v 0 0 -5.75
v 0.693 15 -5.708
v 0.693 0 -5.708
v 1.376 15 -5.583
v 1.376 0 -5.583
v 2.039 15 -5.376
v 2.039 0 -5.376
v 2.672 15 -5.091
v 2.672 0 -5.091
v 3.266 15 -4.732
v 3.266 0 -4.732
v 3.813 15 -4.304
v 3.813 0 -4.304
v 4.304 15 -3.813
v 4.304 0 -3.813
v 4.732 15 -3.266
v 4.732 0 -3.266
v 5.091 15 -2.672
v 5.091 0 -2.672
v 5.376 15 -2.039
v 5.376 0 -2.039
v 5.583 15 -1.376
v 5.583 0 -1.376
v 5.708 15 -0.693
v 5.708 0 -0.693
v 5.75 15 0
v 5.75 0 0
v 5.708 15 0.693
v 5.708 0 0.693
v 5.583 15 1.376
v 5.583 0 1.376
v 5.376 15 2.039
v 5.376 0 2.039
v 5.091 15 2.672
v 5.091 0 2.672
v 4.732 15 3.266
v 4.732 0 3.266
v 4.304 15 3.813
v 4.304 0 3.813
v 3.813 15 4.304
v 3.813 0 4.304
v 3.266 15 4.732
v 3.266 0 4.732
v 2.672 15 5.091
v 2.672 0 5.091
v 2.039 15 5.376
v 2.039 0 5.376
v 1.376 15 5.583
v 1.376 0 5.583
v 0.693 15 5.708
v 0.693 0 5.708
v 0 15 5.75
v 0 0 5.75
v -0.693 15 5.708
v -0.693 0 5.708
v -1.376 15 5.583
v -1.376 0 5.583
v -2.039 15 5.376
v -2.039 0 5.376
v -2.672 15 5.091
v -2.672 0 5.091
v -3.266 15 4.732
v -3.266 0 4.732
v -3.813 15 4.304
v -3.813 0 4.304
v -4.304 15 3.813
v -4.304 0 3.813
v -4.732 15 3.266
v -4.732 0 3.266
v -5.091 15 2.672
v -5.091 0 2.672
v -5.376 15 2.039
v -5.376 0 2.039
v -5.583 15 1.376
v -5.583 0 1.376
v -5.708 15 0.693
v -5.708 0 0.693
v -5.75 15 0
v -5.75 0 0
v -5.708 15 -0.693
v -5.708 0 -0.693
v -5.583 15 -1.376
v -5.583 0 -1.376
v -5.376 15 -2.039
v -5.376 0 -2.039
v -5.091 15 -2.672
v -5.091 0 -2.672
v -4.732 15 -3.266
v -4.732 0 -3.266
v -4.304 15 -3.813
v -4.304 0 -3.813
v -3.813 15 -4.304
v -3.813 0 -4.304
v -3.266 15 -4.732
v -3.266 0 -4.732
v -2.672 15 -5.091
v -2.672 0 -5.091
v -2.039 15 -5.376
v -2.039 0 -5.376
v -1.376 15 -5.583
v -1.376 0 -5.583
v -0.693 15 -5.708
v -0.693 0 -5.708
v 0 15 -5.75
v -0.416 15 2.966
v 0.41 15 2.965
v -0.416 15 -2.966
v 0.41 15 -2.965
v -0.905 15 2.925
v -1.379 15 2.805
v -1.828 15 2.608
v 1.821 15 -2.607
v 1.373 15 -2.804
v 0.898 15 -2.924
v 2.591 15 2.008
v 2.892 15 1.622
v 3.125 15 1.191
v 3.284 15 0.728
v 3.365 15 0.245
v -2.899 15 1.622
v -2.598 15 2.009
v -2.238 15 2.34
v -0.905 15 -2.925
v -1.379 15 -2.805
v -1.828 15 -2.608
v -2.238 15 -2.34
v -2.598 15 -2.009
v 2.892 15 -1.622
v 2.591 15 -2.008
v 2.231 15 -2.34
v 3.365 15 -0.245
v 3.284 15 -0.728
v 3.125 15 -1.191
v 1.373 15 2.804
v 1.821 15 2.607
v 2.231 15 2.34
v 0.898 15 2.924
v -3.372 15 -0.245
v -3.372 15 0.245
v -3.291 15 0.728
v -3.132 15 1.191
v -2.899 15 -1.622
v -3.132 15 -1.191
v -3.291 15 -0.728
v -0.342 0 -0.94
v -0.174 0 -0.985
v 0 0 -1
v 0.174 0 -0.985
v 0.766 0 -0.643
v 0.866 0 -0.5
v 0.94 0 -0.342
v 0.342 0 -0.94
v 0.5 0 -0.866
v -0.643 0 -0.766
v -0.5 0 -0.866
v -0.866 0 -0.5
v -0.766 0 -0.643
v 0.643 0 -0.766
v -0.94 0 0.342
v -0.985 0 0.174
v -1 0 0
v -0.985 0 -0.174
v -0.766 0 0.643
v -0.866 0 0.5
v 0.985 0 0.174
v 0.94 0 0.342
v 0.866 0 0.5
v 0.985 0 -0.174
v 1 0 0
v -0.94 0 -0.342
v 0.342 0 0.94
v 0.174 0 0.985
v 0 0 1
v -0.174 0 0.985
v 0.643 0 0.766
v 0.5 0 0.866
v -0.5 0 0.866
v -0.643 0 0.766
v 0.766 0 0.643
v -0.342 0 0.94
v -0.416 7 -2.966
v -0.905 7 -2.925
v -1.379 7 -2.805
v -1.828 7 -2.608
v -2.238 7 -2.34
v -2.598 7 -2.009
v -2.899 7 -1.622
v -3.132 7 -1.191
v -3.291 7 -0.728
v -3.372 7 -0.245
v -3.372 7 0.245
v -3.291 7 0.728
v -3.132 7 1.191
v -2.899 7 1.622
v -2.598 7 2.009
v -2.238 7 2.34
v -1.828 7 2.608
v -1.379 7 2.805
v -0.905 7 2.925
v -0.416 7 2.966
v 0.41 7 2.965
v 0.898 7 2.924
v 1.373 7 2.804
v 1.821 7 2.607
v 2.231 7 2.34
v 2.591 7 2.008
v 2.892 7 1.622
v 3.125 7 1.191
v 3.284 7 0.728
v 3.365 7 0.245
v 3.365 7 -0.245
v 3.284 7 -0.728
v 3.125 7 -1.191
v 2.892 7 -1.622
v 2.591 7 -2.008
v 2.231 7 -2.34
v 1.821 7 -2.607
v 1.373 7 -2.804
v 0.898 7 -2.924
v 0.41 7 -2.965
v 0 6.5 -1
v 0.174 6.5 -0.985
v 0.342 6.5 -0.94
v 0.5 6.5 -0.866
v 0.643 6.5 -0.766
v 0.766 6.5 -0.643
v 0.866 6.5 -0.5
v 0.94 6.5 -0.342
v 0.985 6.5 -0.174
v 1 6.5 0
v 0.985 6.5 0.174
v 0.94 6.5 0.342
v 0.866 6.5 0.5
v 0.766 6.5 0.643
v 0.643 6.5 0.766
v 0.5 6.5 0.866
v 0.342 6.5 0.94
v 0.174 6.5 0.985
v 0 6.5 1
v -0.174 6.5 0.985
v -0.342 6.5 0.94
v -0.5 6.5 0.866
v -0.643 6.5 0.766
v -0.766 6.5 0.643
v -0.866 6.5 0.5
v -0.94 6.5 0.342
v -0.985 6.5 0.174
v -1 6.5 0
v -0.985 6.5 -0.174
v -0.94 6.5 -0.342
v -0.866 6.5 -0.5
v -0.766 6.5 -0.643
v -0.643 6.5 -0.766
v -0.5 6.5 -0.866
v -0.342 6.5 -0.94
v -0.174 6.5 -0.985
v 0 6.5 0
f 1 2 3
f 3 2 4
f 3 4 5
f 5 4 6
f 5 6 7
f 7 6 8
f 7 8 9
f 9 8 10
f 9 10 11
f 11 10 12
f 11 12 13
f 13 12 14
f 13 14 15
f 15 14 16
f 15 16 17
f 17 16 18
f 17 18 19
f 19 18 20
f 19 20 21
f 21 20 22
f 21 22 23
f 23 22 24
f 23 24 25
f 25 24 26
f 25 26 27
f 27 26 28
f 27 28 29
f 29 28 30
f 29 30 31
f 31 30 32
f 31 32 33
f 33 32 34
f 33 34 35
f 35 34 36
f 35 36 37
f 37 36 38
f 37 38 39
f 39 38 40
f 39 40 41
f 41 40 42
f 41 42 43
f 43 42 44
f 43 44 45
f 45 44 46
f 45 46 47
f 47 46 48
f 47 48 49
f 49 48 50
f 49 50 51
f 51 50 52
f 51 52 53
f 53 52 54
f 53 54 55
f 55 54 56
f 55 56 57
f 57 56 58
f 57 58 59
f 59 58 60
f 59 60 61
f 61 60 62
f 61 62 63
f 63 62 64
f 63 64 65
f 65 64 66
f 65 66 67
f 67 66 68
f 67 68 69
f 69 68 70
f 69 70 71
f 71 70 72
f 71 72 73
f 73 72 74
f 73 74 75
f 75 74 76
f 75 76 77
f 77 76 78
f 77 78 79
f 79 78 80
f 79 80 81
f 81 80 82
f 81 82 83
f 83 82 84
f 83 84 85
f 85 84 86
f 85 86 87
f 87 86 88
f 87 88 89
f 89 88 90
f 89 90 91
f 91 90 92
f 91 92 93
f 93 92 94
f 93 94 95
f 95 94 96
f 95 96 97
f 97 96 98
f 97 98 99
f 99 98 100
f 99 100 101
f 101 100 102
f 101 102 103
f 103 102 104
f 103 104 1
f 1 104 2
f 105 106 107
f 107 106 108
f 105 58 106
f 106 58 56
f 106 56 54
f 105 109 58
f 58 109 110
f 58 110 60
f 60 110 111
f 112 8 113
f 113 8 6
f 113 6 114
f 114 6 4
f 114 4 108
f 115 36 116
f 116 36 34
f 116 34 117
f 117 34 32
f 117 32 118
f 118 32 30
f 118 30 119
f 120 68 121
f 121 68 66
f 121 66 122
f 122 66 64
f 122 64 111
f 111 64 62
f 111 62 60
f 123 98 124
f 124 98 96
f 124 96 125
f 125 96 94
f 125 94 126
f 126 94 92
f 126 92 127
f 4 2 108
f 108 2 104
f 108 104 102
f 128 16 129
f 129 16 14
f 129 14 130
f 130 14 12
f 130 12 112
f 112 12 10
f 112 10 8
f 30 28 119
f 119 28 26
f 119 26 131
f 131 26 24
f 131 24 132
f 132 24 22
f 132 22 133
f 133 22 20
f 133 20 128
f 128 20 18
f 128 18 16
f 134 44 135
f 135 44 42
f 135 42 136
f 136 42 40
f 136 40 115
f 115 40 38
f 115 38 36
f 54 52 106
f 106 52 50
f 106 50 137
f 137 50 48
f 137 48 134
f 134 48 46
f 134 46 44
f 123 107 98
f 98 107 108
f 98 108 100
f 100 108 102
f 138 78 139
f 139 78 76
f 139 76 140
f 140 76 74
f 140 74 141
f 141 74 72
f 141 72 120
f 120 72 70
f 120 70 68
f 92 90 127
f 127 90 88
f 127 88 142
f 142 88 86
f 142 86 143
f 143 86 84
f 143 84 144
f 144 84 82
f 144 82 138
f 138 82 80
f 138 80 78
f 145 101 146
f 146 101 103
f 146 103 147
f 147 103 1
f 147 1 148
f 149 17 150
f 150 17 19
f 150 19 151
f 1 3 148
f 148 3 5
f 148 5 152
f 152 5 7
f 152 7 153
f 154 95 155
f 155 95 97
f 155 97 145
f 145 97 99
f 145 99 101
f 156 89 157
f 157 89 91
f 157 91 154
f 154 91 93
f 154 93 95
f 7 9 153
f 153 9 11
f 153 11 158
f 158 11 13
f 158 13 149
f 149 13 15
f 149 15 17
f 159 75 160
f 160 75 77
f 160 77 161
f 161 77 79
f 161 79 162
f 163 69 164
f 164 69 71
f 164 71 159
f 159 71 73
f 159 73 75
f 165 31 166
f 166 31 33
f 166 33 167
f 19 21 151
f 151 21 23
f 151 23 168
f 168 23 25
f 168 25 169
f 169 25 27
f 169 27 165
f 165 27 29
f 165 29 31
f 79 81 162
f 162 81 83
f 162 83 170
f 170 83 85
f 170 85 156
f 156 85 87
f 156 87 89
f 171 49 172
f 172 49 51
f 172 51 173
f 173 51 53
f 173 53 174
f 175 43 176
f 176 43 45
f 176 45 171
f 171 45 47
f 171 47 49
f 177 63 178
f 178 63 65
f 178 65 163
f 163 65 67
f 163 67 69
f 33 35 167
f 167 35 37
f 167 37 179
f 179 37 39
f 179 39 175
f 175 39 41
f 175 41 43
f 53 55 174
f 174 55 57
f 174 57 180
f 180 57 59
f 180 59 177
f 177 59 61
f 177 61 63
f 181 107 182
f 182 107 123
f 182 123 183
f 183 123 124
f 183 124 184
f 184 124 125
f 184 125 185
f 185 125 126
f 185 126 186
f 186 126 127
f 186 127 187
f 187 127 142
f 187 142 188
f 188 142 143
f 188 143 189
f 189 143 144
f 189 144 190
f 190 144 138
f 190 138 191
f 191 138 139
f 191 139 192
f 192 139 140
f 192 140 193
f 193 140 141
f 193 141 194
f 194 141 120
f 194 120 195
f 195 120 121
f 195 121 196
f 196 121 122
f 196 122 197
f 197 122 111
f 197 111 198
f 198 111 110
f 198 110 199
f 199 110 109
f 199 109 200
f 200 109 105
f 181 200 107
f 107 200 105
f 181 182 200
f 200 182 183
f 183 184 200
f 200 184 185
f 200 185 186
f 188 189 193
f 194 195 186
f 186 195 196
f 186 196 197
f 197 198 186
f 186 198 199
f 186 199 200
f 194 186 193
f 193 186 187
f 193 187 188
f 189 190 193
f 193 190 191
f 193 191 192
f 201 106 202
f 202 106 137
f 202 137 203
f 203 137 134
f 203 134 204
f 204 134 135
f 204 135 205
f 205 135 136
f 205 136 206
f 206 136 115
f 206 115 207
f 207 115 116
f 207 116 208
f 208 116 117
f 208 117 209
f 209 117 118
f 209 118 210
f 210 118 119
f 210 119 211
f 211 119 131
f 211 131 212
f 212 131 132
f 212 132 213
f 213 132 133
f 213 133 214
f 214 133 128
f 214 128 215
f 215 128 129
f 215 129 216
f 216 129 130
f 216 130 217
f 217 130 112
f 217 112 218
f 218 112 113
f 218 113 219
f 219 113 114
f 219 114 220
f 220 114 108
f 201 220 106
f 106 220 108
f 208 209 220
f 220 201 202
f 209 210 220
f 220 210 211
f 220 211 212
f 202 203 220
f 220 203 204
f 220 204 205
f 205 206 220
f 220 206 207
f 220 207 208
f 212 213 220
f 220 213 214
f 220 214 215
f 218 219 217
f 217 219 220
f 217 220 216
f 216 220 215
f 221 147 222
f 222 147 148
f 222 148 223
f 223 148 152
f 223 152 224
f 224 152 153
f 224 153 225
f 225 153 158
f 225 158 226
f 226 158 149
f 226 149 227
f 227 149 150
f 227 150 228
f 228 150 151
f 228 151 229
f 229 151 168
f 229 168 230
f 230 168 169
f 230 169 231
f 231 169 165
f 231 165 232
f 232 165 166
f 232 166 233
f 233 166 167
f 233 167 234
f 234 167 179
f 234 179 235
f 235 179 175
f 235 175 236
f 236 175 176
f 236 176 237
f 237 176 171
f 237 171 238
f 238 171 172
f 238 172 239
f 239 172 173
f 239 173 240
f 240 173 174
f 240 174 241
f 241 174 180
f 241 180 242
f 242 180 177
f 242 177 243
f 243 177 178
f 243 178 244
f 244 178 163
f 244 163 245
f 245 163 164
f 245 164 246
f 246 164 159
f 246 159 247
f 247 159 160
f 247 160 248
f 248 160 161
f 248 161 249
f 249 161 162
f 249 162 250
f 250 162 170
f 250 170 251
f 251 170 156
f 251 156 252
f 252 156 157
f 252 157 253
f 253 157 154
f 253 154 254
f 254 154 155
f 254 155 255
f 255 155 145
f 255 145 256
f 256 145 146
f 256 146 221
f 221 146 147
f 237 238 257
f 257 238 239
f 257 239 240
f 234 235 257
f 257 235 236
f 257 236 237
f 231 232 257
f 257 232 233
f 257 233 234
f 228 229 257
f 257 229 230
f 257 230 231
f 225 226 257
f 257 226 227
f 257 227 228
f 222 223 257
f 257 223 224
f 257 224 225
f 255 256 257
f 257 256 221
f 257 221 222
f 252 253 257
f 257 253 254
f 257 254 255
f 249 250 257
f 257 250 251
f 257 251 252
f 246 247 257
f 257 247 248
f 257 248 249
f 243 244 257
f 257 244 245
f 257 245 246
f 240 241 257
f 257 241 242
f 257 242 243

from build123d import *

# Parameters (mm, degrees)
SKETCH1_R           = 5.75
BOSS_EXTRUDE1_DEPTH = 15
CUT_EXTRUDE3_DEPTH  = 8
SKETCH7_R           = 1
CUT_EXTRUDE4_DEPTH  = 6.5


with BuildPart() as part:
    # Sketch1 → Boss-Extrude1 (new body)
    with BuildSketch(Plane(origin=(0, 0, 0), x_dir=(1, 0, 0), z_dir=(0, 1, 0))):
        with Locations(Location((0, 0, 0), (0, 0, 270))):
            Circle(SKETCH1_R)
    extrude(amount=BOSS_EXTRUDE1_DEPTH)

    # Sketch6 → Cut-Extrude3 (cut)
    with BuildSketch(Plane(origin=(0, 15, 0), x_dir=(1, 0, 0), z_dir=(0, 1, 0))):
        with BuildLine():
            Line((0.41, 2.964671599), (0.41, -2.964671599))
            ThreePointArc((0.41, -2.964671599), (3.374671599, 0), (0.41, 2.964671599))
        make_face()
        with BuildLine():
            Line((-0.416408681, 2.965564682), (-0.416408681, -2.965564682))
            ThreePointArc((-0.416408681, -2.965564682), (-3.381973363, 0), (-0.416408681, 2.965564682))
        make_face()
    extrude(amount=-CUT_EXTRUDE3_DEPTH, mode=Mode.SUBTRACT)

    # Sketch7 → Cut-Extrude4 (cut)
    with BuildSketch(Plane(origin=(0, 0, 0), x_dir=(1, 0, 0), z_dir=(0, 1, 0))):
        with Locations(Location((0, 0, 0), (0, 0, 90))):
            Circle(SKETCH7_R)
    extrude(amount=CUT_EXTRUDE4_DEPTH, mode=Mode.SUBTRACT)


solid = part.part
